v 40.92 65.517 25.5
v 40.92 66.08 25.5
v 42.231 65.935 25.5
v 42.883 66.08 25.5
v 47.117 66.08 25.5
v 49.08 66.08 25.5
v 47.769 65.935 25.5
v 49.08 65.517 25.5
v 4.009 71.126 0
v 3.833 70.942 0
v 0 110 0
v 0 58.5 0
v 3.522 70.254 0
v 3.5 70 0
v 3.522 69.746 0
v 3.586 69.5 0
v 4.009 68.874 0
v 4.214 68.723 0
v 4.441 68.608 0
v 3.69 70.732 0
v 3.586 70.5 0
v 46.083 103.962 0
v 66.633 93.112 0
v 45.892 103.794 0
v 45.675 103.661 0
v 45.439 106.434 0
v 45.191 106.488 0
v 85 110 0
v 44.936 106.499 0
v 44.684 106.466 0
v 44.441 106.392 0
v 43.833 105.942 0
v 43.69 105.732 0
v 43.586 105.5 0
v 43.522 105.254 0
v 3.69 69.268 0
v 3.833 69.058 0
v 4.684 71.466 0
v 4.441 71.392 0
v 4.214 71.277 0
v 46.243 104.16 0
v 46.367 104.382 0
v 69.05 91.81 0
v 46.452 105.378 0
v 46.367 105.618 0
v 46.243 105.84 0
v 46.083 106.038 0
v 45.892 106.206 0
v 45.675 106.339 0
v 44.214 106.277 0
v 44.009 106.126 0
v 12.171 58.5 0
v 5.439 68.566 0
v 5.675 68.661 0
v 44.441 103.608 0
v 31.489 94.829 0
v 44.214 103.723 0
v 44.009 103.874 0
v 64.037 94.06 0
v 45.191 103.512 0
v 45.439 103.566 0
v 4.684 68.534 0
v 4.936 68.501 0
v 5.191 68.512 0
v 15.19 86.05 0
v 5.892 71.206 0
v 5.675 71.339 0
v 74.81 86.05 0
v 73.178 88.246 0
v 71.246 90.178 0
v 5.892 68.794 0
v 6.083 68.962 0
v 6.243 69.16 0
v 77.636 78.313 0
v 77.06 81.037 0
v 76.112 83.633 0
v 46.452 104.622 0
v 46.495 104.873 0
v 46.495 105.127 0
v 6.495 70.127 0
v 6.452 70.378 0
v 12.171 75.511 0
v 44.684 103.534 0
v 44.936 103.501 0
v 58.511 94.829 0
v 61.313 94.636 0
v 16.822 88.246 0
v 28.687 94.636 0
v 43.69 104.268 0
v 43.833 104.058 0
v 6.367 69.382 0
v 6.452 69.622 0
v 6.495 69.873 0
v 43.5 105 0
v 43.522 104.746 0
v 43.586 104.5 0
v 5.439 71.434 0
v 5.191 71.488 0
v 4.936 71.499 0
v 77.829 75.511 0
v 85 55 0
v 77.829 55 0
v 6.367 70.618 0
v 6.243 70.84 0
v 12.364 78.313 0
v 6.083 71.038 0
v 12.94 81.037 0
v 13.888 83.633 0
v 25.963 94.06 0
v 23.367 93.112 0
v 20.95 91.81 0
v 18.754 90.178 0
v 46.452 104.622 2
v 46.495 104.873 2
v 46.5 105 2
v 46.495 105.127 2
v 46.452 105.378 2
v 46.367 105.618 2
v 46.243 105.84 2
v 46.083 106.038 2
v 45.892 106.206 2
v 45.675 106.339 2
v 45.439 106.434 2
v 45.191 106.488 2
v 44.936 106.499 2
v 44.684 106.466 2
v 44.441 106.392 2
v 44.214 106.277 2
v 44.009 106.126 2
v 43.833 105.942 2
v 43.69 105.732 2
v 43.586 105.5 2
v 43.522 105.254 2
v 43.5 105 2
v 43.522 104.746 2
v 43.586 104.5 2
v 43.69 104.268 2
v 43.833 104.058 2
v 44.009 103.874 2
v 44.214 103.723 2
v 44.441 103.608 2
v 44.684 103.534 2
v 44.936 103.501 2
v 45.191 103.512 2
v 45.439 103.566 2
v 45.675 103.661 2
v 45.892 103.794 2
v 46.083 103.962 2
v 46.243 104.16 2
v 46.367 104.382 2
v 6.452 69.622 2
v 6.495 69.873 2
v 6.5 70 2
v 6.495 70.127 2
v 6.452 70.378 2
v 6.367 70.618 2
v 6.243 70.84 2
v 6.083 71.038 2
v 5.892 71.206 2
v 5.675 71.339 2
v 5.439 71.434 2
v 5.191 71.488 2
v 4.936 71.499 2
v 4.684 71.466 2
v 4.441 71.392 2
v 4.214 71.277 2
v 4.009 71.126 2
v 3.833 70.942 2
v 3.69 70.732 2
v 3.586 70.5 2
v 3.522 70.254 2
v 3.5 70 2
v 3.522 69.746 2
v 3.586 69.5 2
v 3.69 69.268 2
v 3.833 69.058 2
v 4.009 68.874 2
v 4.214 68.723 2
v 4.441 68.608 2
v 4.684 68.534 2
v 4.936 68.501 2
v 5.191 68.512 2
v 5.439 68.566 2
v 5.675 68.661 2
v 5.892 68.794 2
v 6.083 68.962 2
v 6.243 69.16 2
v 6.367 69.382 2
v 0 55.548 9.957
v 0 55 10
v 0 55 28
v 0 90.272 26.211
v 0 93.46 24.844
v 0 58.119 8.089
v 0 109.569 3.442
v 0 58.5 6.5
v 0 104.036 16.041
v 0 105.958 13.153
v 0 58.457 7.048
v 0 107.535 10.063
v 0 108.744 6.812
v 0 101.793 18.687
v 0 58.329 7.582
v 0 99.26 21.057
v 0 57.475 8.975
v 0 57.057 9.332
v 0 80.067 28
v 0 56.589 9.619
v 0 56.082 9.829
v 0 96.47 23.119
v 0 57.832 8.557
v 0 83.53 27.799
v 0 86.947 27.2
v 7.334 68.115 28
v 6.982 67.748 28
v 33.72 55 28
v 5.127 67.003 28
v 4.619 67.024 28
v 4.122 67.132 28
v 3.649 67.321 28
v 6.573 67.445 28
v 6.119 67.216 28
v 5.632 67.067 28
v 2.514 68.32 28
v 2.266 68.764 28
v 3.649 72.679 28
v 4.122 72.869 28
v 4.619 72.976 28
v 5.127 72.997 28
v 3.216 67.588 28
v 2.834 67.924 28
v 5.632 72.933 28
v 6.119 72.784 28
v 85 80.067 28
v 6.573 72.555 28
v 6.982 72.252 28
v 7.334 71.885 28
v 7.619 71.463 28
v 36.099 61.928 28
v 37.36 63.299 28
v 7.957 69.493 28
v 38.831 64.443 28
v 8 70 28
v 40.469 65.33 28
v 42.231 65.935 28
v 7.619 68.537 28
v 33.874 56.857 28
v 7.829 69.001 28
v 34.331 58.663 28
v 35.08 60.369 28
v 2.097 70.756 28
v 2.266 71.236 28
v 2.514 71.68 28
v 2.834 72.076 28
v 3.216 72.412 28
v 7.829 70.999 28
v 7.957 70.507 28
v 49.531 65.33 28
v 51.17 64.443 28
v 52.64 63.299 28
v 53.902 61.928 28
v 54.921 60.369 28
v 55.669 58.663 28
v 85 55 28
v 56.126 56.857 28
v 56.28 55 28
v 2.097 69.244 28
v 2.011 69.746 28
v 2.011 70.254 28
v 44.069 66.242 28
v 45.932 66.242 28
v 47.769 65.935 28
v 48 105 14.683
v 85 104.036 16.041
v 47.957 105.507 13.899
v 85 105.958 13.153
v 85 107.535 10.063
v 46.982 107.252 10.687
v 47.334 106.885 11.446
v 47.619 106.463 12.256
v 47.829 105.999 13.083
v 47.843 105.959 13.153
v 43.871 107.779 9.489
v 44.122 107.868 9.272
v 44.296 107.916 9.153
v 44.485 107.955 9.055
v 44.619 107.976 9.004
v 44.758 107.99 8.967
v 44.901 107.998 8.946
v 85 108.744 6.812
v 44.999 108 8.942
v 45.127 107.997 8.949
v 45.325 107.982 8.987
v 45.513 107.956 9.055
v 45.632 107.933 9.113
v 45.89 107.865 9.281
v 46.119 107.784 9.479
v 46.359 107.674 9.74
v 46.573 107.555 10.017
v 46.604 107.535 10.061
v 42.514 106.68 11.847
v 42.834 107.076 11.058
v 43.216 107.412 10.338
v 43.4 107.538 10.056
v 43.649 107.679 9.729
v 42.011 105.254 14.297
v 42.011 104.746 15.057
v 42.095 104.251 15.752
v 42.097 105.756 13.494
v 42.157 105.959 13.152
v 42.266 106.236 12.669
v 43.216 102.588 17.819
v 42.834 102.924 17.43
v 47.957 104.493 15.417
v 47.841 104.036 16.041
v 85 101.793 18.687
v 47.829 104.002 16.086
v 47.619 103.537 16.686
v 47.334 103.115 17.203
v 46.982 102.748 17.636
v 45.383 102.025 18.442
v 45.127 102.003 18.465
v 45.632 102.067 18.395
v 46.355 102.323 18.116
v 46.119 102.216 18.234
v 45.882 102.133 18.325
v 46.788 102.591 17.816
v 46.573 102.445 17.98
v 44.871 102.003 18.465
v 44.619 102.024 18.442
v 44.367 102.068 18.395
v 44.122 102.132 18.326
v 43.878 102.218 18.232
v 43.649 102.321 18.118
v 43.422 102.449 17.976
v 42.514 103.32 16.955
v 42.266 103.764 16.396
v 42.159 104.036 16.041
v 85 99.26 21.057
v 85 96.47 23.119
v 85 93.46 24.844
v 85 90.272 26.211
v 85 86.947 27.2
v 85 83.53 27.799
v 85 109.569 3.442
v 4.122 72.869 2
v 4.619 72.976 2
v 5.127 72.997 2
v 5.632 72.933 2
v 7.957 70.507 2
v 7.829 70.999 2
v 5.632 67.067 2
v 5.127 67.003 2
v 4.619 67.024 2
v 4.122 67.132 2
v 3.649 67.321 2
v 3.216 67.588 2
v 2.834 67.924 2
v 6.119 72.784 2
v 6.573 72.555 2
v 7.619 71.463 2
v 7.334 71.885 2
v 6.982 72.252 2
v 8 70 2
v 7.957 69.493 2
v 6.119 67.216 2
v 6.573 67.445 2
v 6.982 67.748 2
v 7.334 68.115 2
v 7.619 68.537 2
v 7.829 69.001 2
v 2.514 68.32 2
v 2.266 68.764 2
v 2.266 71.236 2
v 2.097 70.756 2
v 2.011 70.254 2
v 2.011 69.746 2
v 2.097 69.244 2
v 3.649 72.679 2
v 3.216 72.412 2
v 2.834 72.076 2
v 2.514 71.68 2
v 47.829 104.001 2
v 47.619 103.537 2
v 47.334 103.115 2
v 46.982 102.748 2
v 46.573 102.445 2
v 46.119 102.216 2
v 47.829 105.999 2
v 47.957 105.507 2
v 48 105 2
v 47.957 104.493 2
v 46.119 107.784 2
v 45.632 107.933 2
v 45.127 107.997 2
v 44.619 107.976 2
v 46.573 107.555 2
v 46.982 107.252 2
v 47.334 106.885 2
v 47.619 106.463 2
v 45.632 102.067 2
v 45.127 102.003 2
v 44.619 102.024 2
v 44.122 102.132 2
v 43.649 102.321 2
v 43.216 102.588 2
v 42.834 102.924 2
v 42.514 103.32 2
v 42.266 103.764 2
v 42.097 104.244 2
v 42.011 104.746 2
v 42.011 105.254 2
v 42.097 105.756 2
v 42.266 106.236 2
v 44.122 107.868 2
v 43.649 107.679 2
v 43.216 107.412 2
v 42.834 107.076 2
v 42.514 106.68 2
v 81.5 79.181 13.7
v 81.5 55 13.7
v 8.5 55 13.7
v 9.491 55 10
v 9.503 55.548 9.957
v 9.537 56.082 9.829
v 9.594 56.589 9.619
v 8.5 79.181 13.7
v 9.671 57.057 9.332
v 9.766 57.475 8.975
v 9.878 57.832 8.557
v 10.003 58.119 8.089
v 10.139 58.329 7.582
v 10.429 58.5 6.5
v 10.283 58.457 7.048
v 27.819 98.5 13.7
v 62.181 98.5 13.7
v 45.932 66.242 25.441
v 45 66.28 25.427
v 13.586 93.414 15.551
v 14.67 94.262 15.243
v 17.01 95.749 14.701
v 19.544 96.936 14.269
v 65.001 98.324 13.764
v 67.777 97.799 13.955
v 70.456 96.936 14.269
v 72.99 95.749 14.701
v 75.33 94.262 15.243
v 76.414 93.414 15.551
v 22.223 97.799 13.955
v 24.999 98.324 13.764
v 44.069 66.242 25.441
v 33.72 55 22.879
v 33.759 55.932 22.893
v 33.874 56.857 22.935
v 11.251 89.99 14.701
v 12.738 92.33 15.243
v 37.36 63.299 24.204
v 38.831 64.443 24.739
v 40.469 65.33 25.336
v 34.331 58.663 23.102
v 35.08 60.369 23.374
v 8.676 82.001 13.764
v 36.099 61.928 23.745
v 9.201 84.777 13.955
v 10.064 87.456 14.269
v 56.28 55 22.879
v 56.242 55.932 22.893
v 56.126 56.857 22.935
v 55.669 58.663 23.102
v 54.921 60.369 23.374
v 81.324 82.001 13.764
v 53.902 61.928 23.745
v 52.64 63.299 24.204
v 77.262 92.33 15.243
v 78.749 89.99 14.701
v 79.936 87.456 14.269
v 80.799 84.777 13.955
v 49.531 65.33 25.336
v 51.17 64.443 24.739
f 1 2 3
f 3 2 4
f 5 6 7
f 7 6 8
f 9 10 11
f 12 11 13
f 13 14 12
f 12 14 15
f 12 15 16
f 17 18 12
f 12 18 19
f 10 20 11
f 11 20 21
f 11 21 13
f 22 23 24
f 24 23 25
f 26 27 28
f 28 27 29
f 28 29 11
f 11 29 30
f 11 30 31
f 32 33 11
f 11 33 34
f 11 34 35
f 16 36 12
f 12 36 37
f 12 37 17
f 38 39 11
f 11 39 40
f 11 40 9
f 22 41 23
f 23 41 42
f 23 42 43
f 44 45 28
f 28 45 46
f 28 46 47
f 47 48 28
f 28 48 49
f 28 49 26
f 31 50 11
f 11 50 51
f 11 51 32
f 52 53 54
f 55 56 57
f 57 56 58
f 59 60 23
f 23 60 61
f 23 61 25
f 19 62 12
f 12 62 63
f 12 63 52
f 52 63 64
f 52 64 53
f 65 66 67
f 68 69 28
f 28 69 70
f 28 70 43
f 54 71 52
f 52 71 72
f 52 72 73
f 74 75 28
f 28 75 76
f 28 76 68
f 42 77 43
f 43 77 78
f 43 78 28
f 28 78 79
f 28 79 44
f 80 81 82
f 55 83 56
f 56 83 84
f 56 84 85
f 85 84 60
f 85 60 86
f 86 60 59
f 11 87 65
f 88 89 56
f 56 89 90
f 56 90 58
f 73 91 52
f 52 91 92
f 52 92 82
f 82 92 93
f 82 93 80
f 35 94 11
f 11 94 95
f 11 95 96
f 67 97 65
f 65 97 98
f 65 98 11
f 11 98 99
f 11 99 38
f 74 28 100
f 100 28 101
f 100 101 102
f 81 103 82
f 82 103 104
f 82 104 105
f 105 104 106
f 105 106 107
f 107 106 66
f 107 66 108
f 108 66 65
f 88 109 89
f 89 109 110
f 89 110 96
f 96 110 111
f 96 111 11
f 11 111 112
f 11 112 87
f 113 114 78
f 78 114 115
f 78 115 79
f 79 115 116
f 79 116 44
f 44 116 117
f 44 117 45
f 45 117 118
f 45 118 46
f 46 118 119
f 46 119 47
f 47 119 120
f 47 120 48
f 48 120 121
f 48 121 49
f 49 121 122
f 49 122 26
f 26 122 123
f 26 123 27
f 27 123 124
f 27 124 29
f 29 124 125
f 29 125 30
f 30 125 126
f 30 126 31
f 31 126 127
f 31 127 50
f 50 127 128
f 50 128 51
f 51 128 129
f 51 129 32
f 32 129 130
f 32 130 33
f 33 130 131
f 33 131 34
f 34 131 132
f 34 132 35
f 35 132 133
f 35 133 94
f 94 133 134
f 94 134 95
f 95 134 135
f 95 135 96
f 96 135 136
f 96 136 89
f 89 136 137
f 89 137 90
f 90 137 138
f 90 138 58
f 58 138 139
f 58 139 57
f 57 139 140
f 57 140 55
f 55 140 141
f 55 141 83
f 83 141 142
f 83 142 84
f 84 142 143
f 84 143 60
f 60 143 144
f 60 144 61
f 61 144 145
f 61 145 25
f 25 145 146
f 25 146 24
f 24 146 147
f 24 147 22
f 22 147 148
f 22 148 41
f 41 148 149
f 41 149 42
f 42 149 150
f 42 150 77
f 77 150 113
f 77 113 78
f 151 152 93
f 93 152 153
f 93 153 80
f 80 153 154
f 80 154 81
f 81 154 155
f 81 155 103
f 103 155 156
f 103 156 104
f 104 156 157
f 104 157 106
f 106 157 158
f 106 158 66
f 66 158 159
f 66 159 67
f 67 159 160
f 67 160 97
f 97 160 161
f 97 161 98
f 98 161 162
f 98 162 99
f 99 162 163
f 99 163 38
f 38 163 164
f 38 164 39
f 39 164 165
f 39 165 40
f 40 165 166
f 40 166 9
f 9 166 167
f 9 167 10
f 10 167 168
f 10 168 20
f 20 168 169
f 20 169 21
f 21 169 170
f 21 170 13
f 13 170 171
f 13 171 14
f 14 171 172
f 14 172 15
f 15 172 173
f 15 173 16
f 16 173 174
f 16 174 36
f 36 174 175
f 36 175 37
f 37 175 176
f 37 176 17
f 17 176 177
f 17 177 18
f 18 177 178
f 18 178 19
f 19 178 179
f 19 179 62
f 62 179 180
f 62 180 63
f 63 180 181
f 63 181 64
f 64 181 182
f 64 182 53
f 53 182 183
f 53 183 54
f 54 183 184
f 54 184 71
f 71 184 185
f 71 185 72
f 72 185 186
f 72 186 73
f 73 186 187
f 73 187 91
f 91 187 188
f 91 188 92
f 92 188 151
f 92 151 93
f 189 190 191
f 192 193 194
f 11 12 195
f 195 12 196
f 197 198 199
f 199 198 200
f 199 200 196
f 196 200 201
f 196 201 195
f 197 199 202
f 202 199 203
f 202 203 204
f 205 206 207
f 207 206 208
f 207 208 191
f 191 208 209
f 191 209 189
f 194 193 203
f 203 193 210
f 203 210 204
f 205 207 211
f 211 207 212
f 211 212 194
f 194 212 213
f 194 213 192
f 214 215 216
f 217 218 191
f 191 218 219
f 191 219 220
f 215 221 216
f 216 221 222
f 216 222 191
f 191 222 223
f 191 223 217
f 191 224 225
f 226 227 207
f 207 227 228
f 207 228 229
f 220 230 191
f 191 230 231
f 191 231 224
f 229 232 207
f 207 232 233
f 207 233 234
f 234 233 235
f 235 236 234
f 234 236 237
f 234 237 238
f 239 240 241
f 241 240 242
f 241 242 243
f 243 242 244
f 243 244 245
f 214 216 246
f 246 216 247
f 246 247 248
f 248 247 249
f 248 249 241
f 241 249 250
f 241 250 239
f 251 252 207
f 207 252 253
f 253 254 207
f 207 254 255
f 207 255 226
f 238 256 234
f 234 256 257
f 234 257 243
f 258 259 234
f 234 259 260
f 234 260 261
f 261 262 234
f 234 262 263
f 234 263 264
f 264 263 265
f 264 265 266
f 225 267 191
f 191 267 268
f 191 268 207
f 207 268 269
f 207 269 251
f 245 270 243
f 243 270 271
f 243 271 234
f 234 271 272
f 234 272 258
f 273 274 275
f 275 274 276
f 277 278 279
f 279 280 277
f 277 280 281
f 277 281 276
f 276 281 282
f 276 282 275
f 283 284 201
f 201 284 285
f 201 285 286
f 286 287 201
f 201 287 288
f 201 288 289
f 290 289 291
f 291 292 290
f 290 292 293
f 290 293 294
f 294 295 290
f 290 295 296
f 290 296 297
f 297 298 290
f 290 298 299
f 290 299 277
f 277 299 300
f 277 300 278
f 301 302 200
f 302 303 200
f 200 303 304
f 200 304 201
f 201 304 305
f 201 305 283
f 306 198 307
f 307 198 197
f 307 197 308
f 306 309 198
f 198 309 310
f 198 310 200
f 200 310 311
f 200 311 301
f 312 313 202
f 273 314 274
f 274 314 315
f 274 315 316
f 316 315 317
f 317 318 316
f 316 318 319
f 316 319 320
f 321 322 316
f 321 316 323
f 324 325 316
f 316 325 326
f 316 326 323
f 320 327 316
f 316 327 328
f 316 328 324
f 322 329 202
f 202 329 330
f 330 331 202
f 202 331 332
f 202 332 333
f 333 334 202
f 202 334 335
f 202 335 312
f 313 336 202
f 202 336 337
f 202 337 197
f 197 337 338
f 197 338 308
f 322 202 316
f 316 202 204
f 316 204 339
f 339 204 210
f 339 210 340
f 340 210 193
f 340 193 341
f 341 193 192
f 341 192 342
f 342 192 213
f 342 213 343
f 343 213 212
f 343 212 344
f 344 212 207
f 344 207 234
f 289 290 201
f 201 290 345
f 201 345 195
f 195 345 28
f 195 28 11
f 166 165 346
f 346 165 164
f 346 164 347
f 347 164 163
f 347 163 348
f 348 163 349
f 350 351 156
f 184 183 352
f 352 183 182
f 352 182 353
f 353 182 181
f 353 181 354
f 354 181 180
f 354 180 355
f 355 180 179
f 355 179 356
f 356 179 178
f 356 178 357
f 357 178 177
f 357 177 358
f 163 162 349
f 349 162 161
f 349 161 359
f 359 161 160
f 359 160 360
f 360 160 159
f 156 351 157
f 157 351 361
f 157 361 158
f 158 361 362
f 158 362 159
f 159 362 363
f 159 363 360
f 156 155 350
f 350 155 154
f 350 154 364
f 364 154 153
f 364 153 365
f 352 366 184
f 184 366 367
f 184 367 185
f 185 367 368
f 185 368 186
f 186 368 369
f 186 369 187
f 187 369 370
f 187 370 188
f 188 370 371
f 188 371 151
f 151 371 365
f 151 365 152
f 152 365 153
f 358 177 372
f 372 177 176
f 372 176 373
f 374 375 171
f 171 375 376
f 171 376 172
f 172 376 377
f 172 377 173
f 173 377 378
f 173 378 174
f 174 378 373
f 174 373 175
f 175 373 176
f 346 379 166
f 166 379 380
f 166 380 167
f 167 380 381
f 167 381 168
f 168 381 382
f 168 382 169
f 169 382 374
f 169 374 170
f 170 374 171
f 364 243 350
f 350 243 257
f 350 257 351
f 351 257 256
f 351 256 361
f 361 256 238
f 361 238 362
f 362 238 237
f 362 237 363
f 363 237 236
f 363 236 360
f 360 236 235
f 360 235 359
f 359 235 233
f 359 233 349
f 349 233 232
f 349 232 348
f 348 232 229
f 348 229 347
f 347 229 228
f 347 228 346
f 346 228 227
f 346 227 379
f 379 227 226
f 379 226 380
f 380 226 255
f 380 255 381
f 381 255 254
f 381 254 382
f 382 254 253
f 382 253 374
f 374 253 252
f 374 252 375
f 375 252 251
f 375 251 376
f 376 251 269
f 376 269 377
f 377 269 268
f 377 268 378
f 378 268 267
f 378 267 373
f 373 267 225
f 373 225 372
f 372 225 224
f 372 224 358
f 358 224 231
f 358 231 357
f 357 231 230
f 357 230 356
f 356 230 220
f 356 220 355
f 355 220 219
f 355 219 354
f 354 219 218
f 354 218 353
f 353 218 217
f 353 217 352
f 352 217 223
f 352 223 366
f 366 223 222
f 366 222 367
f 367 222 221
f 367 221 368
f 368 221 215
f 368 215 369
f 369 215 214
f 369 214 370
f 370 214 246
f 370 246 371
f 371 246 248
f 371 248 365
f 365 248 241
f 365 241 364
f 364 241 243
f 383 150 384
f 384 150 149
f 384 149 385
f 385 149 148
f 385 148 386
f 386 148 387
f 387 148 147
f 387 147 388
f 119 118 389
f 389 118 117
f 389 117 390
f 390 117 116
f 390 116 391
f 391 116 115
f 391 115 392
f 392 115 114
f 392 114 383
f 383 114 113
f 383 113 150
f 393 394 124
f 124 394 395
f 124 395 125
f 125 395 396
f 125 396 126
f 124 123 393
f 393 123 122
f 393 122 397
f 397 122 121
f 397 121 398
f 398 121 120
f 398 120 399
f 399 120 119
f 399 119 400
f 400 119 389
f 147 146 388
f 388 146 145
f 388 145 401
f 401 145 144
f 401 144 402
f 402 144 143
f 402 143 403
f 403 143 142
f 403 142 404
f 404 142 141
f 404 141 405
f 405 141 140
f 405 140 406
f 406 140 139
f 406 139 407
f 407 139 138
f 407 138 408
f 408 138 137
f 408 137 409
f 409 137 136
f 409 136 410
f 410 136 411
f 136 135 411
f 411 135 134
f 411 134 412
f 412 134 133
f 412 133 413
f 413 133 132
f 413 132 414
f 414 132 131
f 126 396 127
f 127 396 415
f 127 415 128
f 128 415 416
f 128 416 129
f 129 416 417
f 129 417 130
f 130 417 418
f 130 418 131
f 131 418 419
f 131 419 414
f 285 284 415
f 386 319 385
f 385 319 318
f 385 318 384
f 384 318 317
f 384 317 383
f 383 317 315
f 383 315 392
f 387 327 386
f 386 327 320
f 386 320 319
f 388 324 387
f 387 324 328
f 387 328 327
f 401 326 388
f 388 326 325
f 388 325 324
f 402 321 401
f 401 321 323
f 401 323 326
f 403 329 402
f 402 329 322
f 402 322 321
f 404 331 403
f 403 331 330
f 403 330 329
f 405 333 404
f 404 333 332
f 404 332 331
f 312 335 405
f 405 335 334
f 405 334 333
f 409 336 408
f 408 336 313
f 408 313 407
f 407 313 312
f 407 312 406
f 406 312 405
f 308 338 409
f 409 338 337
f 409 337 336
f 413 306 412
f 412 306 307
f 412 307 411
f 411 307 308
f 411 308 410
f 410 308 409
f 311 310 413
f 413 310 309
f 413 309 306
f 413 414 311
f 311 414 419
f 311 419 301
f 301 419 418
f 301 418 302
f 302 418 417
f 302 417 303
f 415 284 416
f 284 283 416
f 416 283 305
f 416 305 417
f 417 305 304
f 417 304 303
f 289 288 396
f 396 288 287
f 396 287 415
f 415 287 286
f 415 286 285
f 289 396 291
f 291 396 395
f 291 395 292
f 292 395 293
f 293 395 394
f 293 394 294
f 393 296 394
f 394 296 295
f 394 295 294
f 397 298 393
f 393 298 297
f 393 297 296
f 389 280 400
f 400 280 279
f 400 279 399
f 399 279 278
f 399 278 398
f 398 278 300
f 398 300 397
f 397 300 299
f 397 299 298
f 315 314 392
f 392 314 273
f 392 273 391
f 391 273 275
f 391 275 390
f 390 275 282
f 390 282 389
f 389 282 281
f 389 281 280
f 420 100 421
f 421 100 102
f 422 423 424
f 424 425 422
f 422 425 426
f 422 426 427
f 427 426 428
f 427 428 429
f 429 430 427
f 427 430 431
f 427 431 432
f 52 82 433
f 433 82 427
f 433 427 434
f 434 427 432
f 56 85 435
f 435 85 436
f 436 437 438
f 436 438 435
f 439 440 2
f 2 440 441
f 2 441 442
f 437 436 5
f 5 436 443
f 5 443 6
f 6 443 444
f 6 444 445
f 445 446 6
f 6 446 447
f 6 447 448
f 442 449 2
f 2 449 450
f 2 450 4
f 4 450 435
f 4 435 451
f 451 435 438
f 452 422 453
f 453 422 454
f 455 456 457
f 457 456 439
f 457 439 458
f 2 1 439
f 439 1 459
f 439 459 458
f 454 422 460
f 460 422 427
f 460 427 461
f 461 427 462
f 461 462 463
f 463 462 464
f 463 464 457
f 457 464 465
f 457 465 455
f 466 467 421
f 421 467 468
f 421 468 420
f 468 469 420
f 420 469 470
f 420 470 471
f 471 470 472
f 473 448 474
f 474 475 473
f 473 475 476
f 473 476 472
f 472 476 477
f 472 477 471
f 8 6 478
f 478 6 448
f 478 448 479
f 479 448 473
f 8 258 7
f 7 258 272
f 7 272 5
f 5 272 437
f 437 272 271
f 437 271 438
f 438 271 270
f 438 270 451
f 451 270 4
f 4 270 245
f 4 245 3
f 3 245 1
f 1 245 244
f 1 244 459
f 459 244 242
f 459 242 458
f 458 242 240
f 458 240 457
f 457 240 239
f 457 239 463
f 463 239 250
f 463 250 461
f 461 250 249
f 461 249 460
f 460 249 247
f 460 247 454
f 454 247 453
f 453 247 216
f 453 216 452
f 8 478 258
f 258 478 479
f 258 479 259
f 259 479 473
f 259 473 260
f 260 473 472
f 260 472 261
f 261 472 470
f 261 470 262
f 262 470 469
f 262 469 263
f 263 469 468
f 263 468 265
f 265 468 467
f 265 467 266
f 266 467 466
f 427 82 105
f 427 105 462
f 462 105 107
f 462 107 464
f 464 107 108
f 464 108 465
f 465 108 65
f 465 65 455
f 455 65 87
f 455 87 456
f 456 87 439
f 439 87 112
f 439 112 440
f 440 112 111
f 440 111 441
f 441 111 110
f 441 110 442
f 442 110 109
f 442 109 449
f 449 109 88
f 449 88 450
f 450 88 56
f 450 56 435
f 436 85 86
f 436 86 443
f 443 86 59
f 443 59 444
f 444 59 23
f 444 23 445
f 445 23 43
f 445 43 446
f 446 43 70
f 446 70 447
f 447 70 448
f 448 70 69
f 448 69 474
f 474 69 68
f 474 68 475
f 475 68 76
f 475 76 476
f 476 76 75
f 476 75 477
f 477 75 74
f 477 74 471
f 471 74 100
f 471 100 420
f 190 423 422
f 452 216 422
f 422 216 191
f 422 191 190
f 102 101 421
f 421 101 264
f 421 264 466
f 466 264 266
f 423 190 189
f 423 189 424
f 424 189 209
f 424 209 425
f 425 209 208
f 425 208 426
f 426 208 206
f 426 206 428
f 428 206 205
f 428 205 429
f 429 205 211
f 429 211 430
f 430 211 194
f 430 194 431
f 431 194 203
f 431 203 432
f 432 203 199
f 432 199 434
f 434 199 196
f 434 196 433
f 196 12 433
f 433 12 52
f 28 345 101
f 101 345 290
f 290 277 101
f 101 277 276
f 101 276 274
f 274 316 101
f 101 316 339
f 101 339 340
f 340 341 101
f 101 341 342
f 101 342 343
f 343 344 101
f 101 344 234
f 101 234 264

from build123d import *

# Parameters (mm, degrees)
SKETCH1_W           = 90
SKETCH1_H           = 110
BOSS_EXTRUDE1_DEPTH = 28
FILLET2_R           = 30
SKETCH3_R           = 1.5
CUT_EXTRUDE1_DEPTH  = 145.858551698
SKETCH4_R           = 3
CUT_EXTRUDE4_DEPTH  = 26
CUT_EXTRUDE5_START  = -13.7
SKETCH5_W           = 73
SKETCH5_H           = 87
CUT_EXTRUDE5_DEPTH  = 13.7
CUT_EXTRUDE5_TAPER  = 15
SKETCH8_W           = 73
SKETCH8_H           = 87
CUT_EXTRUDE8_DEPTH  = 11.8
CUT_EXTRUDE8_DRAFT  = -70
CUT_EXTRUDE9_START  = 30
SKETCH9_R           = 11.28
CUT_EXTRUDE9_DEPTH  = 61.8
FILLET19_R          = 20
SKETCH13_W          = 90
SKETCH13_H          = 55
CUT_EXTRUDE10_DEPTH = 145.858551855
CUT_EXTRUDE12_REACH = 146.859
SKETCH15_W          = 5
SKETCH15_H          = 55
CUT_EXTRUDE13_DEPTH = 145.858551855


with BuildPart() as part:
    # Sketch1 → Boss-Extrude1 (new body)
    with BuildSketch(Plane.XY):
        with Locations((45, 55)):
            Rectangle(SKETCH1_W, SKETCH1_H)
    extrude(amount=BOSS_EXTRUDE1_DEPTH)

    # Fillet2
    # the kernel refuses this fillet: 30 mm, written as the material it takes off along each edge
    with BuildSketch(Plane(origin=(-74.833147735, 0, 28), x_dir=(0, 0, -1), z_dir=(1, 0, 0)), Plane(origin=(164.833147735, 110, 28), x_dir=(0, 0, -1), z_dir=(-1, 0, 0))) as fillet2_piece_1:
        with BuildLine():
            CenterArc((30, 29.933259094), FILLET2_R, 180, 86.177446271)
            Line((0, 29.933259094), (-0.6, 29.933259094))
            Line((-0.6, 29.933259094), (-0.6, 0))
            Line((-0.6, 0), (0, -0.6))
            ThreePointArc((0, -0.6), (14, -0.6), (27.96, -0.598665182))
            Line((27.96, -0.598665182), (28, 0))
        make_face()
    extrude(amount=239.666295471, mode=Mode.SUBTRACT)

    # Sketch3 → Cut-Extrude1 (cut, through all)
    with BuildSketch(Plane(origin=(0, 0, 0), x_dir=(-1, 0, 0), z_dir=(0, 0, -1))):
        with Locations((-45, 105)):
            Circle(SKETCH3_R)
        with Locations((-45, 5)):
            Circle(SKETCH3_R)
        with Locations((-5, 70)):
            Circle(SKETCH3_R)
        with Locations((-5, 40)):
            Circle(SKETCH3_R)
    extrude(amount=-CUT_EXTRUDE1_DEPTH, mode=Mode.SUBTRACT)

    # Sketch4 → Cut-Extrude4 (cut)
    with BuildSketch(Plane.XY.offset(28)):
        with Locations((45, 105)):
            Circle(SKETCH4_R)
        with Locations((45, 5)):
            Circle(SKETCH4_R)
        with Locations((5, 70)):
            Circle(SKETCH4_R)
        with Locations((5, 40)):
            Circle(SKETCH4_R)
    extrude(amount=-CUT_EXTRUDE4_DEPTH, mode=Mode.SUBTRACT)

    # Sketch5 → Cut-Extrude5 (cut)
    with BuildSketch(Plane(origin=(0, 0, 0), x_dir=(-1, 0, 0), z_dir=(0, 0, -1)).offset(CUT_EXTRUDE5_START)):
        with Locations((-45, 55)):
            Rectangle(SKETCH5_W, SKETCH5_H)
    extrude(amount=CUT_EXTRUDE5_DEPTH, taper=CUT_EXTRUDE5_TAPER, mode=Mode.SUBTRACT)


with BuildPart() as cut_extrude8_tool:
    # Sketch8 → Cut-Extrude8 (with draft: the straight prism first)
    with BuildSketch(Plane(origin=(0, 0, 13.7), x_dir=(-1, 0, 0), z_dir=(0, 0, -1))):
        with Locations((-45, 55)):
            Rectangle(SKETCH8_W, SKETCH8_H)
    extrude(amount=-CUT_EXTRUDE8_DEPTH)
    # Cut-Extrude8: the draft: its side faces are tilted about the plane it starts from
    cut_extrude8_sides = [cut_extrude8_tool.faces().sort_by_distance(p)[0] for p in [
        (81.5, 55, 19.6),
        (45, 11.5, 19.6),
        (8.5, 55, 19.6),
        (45, 98.5, 19.6),
    ]]
    draft(cut_extrude8_sides, Plane(origin=(0, 0, 13.7), x_dir=(-1, 0, 0), z_dir=(0, 0, -1)), CUT_EXTRUDE8_DRAFT)


with BuildPart() as part_1:
    add(part.part)

    # Cut-Extrude8: cut by cut_extrude8_tool
    add(cut_extrude8_tool.part, mode=Mode.SUBTRACT)

    # Sketch9 → Cut-Extrude9 (cut)
    with BuildSketch(Plane(origin=(0, 0, 25.5), x_dir=(-1, 0, 0), z_dir=(0, 0, -1)).offset(CUT_EXTRUDE9_START)):
        with Locations((-45.00023355, 55.00023355)):
            Circle(SKETCH9_R)
    extrude(amount=-CUT_EXTRUDE9_DEPTH, mode=Mode.SUBTRACT)

    # Fillet19
    fillet19_edges = [part_1.edges().sort_by_distance(p)[0] for p in [
        (79.664548032, 96.664548032, 6.85),
        (79.664548032, 13.335451968, 6.85),
        (10.335451968, 13.335451968, 6.85),
        (10.335451968, 96.664548032, 6.85),
    ]]
    fillet(fillet19_edges, radius=FILLET19_R)

    # Sketch13 → Cut-Extrude10 (cut, through all)
    with BuildSketch(Plane(origin=(0, 0, 0), x_dir=(-1, 0, 0), z_dir=(0, 0, -1))):
        with Locations((-45, 27.5)):
            Rectangle(SKETCH13_W, SKETCH13_H)
    extrude(amount=-CUT_EXTRUDE10_DEPTH, mode=Mode.SUBTRACT)

    # Cut-Extrude12: up to this plane
    cut_extrude12_end = Plane(origin=(8.5, 11.5, 13.7), z_dir=(-0.9659258262890681, 0, -0.25881904510252135))
    # Sketch14 → Cut-Extrude12 (cut, up to the surface)
    with BuildSketch(Plane.ZY, mode=Mode.PRIVATE) as cut_extrude12_sk1:
        with BuildLine():
            Line((6.5, 58.5), (0, 58.5))
            Line((0, 58.5), (0, 51.5))
            Line((0, 51.5), (6.5, 51.5))
            ThreePointArc((6.5, 51.5), (10, 55), (6.5, 58.5))
        make_face()
    cut_extrude12_tool1 = split(extrude(cut_extrude12_sk1.sketch, amount=-CUT_EXTRUDE12_REACH, mode=Mode.PRIVATE), bisect_by=cut_extrude12_end, keep=Keep.BOTH, mode=Mode.PRIVATE)
    add(cut_extrude12_tool1.solids().sort_by_distance((0, 55, 4.657437))[0], mode=Mode.SUBTRACT)

    # Sketch15 → Cut-Extrude13 (cut, through all)
    with BuildSketch(Plane(origin=(0, 0, 0), x_dir=(-1, 0, 0), z_dir=(0, 0, -1))):
        with Locations((-87.5, 82.5)):
            Rectangle(SKETCH15_W, SKETCH15_H)
    extrude(amount=-CUT_EXTRUDE13_DEPTH, mode=Mode.SUBTRACT)


solid = part_1.part
